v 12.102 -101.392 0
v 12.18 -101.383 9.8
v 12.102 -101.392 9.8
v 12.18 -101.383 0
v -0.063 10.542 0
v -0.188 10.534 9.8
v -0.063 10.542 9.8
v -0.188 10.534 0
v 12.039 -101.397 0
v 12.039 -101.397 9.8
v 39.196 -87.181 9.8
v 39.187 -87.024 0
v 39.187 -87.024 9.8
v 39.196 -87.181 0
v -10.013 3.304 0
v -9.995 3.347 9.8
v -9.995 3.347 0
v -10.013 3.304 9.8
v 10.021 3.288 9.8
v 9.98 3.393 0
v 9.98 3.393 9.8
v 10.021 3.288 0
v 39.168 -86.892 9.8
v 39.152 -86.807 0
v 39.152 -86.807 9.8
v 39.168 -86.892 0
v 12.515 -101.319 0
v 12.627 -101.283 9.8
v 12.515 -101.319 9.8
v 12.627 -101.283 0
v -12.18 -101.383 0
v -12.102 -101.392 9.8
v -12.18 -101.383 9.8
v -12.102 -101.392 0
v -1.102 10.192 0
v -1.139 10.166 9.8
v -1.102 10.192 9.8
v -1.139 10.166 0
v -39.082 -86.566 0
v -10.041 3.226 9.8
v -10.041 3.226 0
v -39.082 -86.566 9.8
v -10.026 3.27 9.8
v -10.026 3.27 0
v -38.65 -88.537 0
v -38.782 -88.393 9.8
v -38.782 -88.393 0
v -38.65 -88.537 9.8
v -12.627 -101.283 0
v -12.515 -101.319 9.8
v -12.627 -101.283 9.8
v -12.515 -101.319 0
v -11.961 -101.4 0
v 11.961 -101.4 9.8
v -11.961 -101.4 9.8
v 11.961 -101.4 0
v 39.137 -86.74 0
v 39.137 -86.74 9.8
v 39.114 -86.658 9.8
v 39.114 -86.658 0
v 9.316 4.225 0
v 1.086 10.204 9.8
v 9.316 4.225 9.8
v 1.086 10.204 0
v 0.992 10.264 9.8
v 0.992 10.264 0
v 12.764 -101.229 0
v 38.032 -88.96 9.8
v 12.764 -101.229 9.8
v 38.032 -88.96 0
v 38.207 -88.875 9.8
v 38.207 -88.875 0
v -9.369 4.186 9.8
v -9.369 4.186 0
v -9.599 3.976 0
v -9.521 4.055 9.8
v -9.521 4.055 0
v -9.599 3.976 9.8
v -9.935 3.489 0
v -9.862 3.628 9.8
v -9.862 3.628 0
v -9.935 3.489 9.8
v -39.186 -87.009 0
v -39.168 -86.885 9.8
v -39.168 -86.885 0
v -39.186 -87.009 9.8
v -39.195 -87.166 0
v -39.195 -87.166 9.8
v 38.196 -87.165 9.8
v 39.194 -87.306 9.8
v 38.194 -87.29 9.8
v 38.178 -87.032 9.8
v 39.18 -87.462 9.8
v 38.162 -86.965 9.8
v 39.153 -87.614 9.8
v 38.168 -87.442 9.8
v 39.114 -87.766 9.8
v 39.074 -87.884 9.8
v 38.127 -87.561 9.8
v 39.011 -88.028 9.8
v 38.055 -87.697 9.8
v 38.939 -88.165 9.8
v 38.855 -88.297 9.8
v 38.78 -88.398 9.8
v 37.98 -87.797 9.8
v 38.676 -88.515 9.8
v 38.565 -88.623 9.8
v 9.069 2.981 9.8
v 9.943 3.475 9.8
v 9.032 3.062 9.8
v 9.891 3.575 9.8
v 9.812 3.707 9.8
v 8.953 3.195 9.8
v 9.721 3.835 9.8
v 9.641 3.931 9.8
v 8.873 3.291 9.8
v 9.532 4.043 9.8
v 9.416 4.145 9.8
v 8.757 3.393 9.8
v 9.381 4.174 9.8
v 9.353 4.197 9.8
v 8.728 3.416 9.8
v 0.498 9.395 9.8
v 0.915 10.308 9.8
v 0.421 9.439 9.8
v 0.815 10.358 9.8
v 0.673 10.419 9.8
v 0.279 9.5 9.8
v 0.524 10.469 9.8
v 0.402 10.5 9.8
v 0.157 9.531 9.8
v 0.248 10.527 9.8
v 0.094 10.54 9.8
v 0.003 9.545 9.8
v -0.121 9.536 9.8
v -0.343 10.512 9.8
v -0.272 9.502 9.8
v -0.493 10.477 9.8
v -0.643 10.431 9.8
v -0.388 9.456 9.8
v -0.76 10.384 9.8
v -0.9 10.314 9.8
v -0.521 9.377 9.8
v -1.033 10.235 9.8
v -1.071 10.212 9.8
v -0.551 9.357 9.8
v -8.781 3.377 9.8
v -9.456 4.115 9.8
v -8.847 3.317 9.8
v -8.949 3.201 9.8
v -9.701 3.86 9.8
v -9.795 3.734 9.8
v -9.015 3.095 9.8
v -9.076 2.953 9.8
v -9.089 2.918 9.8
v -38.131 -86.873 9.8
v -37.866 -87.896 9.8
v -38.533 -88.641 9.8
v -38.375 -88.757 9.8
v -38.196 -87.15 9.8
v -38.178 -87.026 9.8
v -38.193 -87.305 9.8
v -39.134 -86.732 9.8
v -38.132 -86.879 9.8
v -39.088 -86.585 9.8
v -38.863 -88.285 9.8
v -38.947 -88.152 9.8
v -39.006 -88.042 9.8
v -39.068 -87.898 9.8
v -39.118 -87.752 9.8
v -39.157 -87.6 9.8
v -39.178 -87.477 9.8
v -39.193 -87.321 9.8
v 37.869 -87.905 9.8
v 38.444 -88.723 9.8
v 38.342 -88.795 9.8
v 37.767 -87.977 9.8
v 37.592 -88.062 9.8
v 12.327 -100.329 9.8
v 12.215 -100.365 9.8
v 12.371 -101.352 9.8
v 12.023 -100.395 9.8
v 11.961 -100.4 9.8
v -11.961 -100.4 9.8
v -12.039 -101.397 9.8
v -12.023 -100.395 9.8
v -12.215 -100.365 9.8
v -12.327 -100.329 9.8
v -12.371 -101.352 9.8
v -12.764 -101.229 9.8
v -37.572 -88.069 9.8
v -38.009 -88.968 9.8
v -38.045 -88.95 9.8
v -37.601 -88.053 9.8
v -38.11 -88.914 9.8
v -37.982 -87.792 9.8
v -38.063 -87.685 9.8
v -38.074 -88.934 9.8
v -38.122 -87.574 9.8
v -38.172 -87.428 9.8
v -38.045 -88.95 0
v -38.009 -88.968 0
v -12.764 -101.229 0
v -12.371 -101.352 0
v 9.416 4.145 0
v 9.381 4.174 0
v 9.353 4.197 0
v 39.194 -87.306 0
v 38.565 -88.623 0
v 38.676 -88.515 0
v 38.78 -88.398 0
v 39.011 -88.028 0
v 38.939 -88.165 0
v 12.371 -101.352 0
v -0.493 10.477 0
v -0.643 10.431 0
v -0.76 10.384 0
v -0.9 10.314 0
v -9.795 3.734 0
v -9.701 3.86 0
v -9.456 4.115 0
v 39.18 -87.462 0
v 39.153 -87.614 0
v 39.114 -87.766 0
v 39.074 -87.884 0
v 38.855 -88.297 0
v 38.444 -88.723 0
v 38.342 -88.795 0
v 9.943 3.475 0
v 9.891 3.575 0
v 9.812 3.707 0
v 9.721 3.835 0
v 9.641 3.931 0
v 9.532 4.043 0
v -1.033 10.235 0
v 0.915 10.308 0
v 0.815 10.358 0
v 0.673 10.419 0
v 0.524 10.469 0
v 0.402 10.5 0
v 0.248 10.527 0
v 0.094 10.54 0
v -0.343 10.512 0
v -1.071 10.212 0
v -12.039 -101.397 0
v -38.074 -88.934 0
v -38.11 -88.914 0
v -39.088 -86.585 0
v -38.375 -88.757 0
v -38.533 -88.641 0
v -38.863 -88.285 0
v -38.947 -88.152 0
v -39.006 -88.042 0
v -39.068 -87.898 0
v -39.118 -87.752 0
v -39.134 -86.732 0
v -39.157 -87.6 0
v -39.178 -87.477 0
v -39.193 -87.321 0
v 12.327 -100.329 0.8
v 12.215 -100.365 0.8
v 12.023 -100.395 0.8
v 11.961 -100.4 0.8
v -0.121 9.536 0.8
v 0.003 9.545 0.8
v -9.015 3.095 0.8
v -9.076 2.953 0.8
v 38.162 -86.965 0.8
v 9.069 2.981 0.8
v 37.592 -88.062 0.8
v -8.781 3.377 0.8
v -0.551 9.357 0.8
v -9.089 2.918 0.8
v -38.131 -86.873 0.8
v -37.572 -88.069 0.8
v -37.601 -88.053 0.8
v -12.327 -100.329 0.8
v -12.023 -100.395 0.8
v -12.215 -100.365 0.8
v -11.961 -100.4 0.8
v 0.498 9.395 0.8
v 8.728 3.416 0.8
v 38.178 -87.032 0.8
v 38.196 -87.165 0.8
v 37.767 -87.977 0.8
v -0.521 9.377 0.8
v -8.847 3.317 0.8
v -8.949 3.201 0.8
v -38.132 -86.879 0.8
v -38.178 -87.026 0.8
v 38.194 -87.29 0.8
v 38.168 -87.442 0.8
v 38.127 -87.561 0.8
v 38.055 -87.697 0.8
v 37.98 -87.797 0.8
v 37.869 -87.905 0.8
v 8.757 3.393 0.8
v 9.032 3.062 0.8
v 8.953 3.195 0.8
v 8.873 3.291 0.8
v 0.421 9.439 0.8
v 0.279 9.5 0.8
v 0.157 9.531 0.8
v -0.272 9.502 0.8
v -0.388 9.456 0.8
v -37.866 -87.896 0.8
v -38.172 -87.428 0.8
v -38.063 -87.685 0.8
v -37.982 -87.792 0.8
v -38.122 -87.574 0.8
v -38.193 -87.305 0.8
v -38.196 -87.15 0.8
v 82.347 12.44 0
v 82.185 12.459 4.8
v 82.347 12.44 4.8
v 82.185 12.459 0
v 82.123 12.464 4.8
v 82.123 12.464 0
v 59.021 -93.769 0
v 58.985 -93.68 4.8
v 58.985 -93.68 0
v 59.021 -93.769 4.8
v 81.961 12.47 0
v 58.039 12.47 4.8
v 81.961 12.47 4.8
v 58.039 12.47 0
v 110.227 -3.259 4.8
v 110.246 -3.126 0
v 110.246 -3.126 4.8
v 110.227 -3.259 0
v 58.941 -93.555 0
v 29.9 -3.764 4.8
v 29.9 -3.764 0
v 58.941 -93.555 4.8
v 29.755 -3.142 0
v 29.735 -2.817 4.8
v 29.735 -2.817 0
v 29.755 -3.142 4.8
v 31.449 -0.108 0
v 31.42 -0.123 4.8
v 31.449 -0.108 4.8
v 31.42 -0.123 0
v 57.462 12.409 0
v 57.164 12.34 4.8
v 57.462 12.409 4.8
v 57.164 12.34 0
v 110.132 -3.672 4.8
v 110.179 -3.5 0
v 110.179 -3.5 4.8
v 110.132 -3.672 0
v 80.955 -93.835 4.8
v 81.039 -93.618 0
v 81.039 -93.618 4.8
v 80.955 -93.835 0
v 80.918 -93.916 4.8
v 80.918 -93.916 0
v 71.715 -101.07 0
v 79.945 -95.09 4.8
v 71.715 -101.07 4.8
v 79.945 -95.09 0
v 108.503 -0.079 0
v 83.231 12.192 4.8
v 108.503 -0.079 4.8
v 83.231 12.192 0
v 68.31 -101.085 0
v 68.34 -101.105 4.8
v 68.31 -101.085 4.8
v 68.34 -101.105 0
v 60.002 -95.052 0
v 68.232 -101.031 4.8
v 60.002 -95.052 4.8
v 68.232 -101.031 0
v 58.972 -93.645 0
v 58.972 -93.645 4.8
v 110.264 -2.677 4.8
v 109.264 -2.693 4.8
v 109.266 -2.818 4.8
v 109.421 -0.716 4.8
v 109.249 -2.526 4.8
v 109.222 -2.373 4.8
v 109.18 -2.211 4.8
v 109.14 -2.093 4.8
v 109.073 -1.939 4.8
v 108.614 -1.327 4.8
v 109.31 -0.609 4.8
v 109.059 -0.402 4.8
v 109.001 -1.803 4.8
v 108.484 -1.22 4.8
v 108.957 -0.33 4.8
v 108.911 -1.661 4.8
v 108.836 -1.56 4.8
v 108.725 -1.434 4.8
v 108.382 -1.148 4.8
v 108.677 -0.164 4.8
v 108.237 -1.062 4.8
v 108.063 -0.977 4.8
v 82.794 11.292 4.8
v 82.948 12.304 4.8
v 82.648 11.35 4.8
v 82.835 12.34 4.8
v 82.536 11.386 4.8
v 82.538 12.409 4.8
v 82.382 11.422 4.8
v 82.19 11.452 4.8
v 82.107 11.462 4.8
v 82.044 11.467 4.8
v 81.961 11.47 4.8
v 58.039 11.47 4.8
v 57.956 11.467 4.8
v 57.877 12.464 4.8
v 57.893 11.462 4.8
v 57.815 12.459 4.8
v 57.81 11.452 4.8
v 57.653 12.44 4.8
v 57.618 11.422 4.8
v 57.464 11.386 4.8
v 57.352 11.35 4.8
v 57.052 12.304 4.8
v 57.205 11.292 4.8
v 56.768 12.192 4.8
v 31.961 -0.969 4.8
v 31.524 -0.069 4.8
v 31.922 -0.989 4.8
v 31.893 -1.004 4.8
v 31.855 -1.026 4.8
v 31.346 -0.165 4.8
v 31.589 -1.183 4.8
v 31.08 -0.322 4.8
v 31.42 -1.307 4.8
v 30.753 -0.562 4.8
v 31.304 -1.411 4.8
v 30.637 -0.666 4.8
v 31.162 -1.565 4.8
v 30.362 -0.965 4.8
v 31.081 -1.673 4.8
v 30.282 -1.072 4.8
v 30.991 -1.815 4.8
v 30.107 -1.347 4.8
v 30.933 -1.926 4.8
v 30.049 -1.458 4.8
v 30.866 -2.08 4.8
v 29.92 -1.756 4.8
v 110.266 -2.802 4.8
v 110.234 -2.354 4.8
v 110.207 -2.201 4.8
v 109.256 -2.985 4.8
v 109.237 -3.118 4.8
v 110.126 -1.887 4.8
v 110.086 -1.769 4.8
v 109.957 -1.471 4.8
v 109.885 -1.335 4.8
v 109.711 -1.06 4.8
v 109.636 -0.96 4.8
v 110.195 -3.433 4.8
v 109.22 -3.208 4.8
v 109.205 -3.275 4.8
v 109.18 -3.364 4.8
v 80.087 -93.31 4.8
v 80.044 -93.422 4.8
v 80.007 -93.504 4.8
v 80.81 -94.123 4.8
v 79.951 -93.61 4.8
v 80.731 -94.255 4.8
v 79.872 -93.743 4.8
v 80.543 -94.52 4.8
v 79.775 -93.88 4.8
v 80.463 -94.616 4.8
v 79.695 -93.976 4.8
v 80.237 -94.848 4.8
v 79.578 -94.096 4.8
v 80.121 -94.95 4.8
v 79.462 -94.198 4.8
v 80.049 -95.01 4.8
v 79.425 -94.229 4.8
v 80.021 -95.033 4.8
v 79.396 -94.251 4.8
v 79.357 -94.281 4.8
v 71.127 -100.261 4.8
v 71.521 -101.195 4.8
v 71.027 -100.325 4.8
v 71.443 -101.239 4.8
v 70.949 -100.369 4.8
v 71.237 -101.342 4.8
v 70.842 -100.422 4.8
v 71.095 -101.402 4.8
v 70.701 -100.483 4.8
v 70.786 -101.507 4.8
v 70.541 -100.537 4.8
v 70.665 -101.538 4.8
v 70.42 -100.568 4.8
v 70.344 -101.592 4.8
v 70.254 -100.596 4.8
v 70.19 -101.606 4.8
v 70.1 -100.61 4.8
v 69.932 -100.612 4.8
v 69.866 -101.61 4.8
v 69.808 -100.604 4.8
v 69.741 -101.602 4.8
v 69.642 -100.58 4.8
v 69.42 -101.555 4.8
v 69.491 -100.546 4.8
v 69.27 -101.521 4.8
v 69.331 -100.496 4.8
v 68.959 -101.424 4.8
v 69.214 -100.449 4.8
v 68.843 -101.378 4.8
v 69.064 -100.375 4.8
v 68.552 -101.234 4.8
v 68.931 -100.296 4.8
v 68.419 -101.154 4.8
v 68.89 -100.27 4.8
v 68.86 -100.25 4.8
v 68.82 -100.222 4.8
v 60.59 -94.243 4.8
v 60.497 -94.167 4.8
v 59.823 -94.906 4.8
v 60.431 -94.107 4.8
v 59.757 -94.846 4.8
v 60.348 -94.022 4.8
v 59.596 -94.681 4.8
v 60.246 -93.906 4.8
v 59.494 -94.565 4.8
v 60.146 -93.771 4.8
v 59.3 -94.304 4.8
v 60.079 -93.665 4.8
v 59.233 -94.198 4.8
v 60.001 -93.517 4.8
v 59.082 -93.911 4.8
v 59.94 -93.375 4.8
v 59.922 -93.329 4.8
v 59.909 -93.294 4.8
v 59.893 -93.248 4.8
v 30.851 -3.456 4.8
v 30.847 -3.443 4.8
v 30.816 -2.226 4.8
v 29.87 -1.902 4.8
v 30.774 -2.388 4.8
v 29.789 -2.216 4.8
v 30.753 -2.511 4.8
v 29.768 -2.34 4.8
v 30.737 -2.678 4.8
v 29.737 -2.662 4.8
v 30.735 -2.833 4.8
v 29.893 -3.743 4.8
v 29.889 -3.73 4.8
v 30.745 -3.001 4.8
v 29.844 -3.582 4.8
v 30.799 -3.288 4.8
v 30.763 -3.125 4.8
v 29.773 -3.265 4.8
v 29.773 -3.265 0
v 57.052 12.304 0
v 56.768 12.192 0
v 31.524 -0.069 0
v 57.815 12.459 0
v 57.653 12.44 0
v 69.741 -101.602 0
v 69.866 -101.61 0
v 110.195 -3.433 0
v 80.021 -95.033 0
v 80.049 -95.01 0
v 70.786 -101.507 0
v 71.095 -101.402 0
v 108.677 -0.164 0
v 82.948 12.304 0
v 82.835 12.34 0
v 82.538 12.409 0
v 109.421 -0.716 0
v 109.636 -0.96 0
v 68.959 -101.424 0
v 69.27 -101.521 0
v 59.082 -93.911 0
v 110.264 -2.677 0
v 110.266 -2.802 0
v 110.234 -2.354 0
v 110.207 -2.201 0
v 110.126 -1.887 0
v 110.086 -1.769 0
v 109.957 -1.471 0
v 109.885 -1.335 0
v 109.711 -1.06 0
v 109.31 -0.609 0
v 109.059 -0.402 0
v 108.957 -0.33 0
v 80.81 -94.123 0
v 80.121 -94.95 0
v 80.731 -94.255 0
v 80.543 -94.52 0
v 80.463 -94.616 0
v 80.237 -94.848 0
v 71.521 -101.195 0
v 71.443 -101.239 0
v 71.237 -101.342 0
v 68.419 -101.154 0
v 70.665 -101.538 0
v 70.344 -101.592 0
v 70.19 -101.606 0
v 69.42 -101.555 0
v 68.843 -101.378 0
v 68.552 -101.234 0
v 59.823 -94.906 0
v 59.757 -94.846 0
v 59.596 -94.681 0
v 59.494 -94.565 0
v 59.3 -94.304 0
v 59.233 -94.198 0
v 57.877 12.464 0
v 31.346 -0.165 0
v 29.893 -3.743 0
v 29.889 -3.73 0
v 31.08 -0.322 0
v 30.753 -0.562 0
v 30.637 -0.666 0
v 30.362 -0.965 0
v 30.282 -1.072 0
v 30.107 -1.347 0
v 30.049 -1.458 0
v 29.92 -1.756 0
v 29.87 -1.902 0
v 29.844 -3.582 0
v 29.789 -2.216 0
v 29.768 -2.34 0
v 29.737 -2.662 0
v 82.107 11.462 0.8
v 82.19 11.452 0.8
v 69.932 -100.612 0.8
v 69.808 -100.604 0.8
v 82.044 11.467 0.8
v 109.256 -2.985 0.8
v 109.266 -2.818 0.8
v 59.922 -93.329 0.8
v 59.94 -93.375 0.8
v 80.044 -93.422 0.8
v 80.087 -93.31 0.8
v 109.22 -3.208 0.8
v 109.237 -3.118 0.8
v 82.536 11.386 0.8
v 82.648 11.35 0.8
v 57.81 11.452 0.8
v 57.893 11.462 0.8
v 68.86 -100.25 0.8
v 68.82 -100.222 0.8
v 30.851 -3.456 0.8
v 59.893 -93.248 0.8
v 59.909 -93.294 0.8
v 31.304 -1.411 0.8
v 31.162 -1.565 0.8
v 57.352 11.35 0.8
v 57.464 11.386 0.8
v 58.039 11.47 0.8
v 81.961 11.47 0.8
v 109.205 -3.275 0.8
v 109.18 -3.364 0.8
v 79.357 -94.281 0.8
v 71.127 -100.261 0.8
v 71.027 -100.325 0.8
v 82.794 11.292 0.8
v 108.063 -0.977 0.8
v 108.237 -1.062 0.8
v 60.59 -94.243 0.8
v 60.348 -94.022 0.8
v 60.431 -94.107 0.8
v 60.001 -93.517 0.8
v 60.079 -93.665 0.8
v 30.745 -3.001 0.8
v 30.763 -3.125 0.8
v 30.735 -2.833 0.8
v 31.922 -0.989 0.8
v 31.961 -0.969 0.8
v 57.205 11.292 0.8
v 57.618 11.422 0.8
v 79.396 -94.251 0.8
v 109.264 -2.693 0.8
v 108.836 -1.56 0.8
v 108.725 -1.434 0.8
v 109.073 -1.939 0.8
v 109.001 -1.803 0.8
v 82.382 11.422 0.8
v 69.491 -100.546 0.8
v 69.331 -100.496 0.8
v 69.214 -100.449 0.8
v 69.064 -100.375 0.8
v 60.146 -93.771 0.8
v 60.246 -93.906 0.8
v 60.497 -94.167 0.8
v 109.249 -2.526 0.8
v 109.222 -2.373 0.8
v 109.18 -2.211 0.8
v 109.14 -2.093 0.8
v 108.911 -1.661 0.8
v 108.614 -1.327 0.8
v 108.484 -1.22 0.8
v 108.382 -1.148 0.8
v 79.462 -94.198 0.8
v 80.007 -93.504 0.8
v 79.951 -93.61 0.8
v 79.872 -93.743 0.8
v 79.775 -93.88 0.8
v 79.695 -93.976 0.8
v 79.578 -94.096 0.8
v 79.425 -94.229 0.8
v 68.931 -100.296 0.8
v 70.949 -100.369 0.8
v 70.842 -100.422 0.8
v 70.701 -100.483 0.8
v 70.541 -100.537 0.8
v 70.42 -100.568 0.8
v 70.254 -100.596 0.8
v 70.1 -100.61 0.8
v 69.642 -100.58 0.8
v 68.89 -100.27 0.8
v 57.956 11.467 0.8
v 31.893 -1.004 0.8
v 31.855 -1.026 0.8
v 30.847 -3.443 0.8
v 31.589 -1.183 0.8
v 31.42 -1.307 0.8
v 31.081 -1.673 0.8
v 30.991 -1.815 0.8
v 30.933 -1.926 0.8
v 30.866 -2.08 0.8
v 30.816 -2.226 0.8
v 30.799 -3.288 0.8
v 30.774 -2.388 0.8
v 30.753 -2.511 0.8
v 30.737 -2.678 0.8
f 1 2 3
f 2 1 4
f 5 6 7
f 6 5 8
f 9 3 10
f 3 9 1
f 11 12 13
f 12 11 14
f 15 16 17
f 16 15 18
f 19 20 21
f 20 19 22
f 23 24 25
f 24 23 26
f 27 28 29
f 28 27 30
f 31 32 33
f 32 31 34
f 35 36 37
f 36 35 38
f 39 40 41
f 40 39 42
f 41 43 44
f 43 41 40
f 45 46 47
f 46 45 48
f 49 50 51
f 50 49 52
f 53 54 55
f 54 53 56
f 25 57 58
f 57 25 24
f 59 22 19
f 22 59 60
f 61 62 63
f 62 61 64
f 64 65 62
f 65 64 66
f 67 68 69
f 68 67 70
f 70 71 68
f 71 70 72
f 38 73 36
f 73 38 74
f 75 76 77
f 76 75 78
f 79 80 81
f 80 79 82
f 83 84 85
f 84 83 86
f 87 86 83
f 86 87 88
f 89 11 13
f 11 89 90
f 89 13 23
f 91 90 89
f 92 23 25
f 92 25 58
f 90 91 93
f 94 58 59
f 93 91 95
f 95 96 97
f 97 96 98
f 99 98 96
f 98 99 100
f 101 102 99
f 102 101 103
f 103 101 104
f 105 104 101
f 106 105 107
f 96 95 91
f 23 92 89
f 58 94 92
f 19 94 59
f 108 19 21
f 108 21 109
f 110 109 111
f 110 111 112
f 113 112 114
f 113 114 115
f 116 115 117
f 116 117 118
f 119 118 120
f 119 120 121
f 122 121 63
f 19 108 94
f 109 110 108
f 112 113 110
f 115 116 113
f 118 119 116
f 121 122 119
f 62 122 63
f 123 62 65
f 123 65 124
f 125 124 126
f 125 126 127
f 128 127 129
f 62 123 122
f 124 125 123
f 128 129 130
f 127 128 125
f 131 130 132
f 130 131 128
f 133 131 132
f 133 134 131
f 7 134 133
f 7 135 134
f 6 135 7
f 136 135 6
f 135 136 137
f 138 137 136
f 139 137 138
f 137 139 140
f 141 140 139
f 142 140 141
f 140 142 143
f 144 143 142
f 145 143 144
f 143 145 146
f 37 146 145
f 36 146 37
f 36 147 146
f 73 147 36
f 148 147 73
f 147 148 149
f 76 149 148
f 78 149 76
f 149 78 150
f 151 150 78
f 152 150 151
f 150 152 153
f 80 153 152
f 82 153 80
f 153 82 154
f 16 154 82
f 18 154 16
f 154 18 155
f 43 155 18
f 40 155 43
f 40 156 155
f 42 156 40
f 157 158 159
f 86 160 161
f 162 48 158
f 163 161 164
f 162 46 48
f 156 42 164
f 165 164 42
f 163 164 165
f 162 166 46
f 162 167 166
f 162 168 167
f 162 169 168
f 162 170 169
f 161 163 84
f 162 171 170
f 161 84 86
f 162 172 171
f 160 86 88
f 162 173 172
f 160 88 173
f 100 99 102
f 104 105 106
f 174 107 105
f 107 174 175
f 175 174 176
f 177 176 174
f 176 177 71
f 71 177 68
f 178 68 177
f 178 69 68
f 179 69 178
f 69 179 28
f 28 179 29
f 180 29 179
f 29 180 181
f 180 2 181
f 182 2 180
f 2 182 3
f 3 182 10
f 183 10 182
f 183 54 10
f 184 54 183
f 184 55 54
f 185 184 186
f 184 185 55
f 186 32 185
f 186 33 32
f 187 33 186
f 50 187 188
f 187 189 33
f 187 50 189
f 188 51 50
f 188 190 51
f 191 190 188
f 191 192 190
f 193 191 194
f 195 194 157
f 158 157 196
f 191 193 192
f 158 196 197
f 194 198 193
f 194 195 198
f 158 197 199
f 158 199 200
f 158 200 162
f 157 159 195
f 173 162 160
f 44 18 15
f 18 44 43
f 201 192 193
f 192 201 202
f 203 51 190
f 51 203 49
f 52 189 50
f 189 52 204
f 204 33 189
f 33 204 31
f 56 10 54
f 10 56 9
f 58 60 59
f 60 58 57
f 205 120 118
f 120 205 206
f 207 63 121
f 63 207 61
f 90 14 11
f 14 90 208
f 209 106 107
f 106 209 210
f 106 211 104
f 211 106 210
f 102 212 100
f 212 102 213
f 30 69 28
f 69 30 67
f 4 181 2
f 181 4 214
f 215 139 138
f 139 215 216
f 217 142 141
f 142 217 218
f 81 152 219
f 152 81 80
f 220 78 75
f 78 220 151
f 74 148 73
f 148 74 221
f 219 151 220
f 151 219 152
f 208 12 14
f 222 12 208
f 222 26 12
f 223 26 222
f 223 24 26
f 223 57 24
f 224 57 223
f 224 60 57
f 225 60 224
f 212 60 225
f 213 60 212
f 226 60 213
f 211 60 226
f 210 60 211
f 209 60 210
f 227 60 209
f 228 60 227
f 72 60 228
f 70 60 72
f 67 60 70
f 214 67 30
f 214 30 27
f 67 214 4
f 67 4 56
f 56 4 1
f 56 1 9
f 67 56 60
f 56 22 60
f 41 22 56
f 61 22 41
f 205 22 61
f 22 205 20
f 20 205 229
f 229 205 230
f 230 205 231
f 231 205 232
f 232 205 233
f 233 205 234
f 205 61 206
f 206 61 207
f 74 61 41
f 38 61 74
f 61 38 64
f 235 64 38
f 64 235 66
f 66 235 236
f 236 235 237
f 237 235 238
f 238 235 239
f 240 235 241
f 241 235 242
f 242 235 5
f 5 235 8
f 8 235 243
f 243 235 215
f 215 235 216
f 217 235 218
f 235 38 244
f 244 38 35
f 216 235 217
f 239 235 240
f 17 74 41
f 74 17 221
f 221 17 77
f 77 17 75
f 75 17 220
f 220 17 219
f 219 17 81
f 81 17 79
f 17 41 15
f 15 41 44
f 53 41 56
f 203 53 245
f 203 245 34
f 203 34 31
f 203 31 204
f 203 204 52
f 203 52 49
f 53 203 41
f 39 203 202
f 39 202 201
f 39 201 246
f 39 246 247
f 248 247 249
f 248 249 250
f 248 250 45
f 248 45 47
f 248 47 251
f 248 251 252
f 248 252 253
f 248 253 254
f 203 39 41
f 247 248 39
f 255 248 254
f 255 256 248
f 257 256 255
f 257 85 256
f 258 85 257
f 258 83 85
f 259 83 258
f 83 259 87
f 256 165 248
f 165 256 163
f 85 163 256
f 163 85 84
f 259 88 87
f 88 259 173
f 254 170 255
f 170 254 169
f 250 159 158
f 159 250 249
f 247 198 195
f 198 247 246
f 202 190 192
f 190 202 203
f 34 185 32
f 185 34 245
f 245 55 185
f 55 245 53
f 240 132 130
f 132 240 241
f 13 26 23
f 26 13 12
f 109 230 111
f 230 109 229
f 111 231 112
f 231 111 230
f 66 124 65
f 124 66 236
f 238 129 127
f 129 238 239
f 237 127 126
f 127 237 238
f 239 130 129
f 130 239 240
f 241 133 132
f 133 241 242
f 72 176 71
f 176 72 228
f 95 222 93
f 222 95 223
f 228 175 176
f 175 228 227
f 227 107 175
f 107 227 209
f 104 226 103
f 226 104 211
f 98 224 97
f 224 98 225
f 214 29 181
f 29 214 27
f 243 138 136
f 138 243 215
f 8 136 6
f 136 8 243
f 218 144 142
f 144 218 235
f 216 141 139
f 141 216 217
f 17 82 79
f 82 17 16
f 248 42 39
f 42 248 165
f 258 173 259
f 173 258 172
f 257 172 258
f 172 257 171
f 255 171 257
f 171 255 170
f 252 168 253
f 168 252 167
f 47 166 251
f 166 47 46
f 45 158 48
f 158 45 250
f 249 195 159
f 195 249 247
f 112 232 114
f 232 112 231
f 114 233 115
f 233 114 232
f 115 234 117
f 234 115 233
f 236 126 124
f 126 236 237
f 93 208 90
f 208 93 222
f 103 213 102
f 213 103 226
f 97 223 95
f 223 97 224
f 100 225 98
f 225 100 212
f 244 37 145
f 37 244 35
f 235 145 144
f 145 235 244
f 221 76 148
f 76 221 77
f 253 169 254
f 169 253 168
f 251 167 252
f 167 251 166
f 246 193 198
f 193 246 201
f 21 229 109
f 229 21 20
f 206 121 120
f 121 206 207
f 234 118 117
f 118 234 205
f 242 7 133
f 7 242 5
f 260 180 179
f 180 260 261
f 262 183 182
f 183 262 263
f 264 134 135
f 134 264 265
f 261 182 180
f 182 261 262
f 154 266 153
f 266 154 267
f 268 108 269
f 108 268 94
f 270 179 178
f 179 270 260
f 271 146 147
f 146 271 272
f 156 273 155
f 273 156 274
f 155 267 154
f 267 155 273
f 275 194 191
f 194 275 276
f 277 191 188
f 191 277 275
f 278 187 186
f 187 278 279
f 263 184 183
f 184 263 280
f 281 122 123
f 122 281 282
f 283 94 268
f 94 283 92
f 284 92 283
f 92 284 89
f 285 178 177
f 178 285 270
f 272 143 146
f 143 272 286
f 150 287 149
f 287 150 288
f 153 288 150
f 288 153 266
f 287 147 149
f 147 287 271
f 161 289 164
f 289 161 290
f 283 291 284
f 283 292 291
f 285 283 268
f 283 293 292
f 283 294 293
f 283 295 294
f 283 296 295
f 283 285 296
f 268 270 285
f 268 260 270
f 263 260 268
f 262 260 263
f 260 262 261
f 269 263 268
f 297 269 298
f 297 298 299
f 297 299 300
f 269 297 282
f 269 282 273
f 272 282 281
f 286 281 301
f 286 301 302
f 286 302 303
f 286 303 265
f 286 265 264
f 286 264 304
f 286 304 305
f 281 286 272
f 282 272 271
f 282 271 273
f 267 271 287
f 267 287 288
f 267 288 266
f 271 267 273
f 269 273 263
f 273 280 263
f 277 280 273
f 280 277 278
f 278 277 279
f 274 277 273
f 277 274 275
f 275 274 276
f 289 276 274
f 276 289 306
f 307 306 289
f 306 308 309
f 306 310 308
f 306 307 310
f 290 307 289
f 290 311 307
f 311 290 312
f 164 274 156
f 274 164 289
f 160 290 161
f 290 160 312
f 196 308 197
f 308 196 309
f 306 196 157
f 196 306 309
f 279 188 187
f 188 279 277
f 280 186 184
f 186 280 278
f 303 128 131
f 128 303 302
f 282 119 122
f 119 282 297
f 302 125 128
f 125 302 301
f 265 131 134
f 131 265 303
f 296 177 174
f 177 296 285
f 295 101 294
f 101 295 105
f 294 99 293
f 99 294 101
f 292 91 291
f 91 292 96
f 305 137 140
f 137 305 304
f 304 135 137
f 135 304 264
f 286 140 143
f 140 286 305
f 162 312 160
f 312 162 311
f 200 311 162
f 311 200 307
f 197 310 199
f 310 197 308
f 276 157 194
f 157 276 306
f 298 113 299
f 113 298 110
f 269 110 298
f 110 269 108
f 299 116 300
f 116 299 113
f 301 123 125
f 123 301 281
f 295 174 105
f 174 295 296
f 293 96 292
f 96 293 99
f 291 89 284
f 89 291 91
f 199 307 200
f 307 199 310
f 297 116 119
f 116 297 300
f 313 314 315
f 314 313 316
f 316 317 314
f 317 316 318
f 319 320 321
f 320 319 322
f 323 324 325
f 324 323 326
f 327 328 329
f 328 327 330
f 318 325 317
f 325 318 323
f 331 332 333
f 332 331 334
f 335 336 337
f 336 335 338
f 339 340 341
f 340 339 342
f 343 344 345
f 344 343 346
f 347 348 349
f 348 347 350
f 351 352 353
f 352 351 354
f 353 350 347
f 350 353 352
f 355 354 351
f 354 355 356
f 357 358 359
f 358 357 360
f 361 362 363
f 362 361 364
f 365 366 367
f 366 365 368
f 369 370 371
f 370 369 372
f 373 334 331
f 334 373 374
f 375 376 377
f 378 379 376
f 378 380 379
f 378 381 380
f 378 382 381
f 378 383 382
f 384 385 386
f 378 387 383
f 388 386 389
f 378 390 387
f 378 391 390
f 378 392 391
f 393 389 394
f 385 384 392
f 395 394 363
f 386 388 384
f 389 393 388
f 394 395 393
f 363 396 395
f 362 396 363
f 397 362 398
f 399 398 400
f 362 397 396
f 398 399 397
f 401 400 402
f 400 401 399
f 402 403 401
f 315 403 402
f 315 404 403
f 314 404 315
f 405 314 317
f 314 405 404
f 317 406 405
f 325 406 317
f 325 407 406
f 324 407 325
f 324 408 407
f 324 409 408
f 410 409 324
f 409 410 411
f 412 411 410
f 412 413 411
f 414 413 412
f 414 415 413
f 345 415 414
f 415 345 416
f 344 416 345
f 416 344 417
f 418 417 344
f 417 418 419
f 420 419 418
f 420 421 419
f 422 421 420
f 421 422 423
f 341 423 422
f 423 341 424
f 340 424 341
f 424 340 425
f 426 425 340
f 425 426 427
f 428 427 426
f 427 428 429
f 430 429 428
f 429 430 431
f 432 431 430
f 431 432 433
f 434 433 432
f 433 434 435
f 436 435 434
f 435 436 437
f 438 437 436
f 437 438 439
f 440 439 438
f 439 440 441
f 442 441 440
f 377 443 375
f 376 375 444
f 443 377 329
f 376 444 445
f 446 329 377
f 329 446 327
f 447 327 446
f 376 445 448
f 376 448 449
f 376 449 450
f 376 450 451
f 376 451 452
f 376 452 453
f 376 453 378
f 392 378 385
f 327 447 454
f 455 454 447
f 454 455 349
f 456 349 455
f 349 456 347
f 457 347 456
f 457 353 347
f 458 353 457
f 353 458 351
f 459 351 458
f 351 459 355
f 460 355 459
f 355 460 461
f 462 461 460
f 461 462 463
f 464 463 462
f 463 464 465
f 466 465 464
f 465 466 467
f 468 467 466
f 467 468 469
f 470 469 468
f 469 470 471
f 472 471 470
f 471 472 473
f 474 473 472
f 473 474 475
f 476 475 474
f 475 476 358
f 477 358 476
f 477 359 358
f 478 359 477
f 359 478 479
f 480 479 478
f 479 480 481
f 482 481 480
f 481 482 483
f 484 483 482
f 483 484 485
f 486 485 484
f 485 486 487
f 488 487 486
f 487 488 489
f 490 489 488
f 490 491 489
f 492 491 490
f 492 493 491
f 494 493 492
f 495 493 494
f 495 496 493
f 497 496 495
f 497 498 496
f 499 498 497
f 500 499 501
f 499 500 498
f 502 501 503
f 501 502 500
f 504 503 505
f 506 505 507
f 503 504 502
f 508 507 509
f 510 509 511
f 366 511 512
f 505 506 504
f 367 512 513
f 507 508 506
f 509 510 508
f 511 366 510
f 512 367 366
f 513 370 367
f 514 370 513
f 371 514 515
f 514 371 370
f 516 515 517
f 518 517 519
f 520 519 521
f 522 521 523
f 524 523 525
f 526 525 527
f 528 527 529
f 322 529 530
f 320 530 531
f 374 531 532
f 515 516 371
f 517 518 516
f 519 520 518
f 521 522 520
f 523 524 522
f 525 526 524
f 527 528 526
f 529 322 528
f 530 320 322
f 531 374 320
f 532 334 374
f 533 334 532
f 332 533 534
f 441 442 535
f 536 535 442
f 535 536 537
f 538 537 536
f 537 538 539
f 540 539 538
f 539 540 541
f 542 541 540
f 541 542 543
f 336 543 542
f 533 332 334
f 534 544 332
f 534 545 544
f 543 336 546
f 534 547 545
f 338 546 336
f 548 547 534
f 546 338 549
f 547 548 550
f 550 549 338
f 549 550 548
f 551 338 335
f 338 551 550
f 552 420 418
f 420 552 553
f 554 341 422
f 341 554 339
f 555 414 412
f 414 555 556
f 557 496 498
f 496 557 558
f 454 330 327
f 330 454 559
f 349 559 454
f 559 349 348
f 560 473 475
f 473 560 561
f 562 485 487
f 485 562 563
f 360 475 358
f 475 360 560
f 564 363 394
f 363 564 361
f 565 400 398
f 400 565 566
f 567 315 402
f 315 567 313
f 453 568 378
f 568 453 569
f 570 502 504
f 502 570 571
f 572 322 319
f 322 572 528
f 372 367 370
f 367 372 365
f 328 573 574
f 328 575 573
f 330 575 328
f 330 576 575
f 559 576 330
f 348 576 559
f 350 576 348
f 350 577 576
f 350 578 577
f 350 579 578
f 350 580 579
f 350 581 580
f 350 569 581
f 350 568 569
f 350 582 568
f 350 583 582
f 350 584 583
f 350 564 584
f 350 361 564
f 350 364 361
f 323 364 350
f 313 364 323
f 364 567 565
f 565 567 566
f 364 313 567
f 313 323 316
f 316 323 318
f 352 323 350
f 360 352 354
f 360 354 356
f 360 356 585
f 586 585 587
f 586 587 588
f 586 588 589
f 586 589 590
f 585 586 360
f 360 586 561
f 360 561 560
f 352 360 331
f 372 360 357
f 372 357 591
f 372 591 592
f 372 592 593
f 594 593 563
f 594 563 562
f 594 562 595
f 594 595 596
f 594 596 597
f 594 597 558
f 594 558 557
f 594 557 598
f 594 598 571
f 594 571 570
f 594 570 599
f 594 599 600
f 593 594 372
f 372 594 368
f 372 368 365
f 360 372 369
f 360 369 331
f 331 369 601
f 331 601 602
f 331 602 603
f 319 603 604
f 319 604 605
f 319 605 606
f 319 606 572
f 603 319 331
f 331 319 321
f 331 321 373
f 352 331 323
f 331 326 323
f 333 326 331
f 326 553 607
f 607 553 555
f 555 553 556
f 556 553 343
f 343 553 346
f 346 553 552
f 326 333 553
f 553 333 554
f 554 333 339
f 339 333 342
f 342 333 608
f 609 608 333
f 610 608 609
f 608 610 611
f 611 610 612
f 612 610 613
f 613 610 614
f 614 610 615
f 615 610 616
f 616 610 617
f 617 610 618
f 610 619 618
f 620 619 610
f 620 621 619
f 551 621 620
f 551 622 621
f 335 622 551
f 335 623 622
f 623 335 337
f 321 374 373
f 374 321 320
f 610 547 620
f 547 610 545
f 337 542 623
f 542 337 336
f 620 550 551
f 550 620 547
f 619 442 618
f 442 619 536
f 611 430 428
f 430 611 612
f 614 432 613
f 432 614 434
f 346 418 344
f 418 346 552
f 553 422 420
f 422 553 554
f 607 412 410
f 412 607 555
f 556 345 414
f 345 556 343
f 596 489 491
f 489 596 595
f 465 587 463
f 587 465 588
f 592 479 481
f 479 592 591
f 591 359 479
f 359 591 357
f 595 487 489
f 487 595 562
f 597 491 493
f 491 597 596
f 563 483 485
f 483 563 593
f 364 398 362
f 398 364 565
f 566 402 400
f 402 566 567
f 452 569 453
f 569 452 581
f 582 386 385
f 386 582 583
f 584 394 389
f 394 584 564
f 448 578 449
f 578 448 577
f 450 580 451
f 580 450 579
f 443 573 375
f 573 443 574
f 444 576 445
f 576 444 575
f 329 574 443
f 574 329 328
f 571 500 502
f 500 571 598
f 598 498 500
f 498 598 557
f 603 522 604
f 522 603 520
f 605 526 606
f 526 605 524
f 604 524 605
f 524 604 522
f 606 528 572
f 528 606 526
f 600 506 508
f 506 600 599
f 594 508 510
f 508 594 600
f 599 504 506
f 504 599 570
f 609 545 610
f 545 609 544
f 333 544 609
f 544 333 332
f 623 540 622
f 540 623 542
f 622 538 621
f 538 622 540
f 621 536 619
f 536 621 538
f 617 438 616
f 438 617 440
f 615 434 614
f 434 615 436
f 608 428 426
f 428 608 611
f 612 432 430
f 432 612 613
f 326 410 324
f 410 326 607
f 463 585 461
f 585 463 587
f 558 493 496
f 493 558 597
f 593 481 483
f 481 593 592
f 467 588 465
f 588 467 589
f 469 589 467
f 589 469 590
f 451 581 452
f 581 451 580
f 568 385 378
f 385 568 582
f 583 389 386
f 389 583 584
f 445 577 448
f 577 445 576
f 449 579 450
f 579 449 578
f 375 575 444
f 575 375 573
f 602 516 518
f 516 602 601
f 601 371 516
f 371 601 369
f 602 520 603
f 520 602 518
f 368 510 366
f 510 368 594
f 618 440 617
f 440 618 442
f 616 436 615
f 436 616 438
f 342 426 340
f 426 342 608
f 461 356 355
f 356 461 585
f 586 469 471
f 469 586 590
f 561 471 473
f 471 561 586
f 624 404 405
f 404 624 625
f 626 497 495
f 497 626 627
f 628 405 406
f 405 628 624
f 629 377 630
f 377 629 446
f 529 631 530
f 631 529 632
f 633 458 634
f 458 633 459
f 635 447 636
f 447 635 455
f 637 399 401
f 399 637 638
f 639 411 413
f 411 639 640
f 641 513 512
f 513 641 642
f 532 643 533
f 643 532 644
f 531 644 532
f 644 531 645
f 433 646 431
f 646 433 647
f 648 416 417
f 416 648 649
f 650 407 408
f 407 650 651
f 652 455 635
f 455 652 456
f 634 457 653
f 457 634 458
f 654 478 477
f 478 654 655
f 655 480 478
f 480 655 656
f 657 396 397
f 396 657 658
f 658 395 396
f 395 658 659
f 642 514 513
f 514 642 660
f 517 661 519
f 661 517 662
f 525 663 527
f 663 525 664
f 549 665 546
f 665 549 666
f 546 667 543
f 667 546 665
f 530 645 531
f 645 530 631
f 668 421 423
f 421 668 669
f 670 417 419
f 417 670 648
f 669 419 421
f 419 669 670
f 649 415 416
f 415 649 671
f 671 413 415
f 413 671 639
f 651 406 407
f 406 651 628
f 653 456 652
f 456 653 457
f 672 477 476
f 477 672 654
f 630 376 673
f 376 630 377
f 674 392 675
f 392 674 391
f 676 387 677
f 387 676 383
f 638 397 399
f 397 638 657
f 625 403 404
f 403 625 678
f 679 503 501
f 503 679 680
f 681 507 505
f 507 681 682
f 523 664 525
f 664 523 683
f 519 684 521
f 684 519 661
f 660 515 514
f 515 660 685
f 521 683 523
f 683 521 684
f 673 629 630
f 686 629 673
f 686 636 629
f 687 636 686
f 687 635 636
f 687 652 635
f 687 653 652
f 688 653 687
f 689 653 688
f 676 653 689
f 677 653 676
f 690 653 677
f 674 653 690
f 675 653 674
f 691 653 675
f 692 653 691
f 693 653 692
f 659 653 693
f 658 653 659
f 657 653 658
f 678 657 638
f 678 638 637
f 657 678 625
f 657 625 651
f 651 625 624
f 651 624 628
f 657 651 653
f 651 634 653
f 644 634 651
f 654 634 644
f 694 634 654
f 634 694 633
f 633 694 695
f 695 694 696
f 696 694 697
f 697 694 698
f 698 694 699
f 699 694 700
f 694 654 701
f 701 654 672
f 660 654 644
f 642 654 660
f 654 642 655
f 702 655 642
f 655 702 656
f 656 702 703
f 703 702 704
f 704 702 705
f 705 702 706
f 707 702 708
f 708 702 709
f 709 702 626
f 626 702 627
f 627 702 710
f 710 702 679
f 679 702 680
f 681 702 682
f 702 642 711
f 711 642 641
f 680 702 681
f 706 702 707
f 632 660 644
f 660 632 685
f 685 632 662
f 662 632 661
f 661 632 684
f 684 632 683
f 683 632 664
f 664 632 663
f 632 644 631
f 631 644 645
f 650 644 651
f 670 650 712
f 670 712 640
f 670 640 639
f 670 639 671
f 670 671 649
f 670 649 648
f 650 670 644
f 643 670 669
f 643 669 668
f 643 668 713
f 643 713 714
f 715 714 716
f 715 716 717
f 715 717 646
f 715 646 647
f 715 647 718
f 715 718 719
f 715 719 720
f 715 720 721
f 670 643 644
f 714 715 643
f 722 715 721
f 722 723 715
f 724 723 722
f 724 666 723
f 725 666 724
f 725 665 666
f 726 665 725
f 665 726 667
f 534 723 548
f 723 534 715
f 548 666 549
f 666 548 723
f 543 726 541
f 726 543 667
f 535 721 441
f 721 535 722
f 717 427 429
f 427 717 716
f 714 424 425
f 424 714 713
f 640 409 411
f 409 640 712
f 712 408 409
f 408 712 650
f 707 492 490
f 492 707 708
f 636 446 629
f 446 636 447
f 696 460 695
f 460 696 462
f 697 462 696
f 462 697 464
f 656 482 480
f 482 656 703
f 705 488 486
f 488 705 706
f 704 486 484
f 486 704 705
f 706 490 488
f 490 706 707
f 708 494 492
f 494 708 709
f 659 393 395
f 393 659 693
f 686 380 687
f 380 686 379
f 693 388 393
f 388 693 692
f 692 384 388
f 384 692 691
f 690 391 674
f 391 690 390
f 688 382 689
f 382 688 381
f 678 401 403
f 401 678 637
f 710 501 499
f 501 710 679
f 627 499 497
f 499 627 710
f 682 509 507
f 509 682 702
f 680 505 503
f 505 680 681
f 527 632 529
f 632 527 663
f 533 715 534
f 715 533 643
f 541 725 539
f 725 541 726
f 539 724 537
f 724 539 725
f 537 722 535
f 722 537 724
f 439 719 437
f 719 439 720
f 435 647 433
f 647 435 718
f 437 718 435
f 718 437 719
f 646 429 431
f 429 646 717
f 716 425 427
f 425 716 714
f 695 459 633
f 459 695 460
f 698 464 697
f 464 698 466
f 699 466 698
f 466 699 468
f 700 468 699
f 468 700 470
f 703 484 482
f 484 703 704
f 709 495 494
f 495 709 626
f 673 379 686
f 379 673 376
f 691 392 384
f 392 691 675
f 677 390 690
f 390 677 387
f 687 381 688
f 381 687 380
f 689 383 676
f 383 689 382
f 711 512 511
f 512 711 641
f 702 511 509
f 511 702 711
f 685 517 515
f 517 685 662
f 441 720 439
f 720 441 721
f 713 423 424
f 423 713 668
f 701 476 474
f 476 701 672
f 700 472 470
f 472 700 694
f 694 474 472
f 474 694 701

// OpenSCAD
$gr = 1.61803398875;
$fn = 20;

$w = 1.0;
$gap = 0.07;
$h1 = 9; // inner height of box
$h2 = 4;
$t = 0.8;

difference() {
    linear_extrude($h1+$t) offset($w) pos();
    translate([0,0,$t]) linear_extrude($h1+$t) pos();
}

scale([1,-1,1]) translate([70,90,0]) difference() {
    linear_extrude($h2+$t) offset($w+$w+$gap) pos();
    translate([0,0,$t]) linear_extrude($h2+$t) offset($w+$gap) pos();
}


module pos() offset(0.4) hull() scale([5,5]) round_edges(0.1) {
    tree();
    star(2,5,0.4);
    stem();
}

module stem() {
    translate([0,-18]) square([3+2,4],center=true);
}

module tree() {
    $fn = 200;
    translate([0,1,0]) {
        branch(10);
        branch(10*$gr);
        branch(10*$gr*$gr);
    }
}

module tree2() {
    branch(10);
    branch(20);
    branch(30);
}

module branch($r = 20) {
    $o = $r/4;
    difference() {
        translate([0,$o]) circle(r=$r);
        translate([+$r,0]) circle(r=$r);
        translate([-$r,0]) circle(r=$r);
        translate([0,$r]) circle(r=$r);
        //translate([0,-$r/1.5]) circle(1);
    }
}



module star($r = 10, $n = 5, $s = 0.5) {
    union() {
        for(i=[0:$n-1]) rotate([0,0,i*(360/$n)]) polygon(points=[[-$r*$s,0],[0,$r],[$r*$s,0]]);
    }
}


module round_edges($r = 0.1) {
    offset(r = -$r) 
        offset(r = 2*$r) 
        offset(r = -$r) 
        children();
}


module stroke_center($t = 1) {
    difference() {
        round_edges(0.5) offset(r = $t/2) children();
        round_edges(0.5) offset(r = -$t/2) children();
    }
}
